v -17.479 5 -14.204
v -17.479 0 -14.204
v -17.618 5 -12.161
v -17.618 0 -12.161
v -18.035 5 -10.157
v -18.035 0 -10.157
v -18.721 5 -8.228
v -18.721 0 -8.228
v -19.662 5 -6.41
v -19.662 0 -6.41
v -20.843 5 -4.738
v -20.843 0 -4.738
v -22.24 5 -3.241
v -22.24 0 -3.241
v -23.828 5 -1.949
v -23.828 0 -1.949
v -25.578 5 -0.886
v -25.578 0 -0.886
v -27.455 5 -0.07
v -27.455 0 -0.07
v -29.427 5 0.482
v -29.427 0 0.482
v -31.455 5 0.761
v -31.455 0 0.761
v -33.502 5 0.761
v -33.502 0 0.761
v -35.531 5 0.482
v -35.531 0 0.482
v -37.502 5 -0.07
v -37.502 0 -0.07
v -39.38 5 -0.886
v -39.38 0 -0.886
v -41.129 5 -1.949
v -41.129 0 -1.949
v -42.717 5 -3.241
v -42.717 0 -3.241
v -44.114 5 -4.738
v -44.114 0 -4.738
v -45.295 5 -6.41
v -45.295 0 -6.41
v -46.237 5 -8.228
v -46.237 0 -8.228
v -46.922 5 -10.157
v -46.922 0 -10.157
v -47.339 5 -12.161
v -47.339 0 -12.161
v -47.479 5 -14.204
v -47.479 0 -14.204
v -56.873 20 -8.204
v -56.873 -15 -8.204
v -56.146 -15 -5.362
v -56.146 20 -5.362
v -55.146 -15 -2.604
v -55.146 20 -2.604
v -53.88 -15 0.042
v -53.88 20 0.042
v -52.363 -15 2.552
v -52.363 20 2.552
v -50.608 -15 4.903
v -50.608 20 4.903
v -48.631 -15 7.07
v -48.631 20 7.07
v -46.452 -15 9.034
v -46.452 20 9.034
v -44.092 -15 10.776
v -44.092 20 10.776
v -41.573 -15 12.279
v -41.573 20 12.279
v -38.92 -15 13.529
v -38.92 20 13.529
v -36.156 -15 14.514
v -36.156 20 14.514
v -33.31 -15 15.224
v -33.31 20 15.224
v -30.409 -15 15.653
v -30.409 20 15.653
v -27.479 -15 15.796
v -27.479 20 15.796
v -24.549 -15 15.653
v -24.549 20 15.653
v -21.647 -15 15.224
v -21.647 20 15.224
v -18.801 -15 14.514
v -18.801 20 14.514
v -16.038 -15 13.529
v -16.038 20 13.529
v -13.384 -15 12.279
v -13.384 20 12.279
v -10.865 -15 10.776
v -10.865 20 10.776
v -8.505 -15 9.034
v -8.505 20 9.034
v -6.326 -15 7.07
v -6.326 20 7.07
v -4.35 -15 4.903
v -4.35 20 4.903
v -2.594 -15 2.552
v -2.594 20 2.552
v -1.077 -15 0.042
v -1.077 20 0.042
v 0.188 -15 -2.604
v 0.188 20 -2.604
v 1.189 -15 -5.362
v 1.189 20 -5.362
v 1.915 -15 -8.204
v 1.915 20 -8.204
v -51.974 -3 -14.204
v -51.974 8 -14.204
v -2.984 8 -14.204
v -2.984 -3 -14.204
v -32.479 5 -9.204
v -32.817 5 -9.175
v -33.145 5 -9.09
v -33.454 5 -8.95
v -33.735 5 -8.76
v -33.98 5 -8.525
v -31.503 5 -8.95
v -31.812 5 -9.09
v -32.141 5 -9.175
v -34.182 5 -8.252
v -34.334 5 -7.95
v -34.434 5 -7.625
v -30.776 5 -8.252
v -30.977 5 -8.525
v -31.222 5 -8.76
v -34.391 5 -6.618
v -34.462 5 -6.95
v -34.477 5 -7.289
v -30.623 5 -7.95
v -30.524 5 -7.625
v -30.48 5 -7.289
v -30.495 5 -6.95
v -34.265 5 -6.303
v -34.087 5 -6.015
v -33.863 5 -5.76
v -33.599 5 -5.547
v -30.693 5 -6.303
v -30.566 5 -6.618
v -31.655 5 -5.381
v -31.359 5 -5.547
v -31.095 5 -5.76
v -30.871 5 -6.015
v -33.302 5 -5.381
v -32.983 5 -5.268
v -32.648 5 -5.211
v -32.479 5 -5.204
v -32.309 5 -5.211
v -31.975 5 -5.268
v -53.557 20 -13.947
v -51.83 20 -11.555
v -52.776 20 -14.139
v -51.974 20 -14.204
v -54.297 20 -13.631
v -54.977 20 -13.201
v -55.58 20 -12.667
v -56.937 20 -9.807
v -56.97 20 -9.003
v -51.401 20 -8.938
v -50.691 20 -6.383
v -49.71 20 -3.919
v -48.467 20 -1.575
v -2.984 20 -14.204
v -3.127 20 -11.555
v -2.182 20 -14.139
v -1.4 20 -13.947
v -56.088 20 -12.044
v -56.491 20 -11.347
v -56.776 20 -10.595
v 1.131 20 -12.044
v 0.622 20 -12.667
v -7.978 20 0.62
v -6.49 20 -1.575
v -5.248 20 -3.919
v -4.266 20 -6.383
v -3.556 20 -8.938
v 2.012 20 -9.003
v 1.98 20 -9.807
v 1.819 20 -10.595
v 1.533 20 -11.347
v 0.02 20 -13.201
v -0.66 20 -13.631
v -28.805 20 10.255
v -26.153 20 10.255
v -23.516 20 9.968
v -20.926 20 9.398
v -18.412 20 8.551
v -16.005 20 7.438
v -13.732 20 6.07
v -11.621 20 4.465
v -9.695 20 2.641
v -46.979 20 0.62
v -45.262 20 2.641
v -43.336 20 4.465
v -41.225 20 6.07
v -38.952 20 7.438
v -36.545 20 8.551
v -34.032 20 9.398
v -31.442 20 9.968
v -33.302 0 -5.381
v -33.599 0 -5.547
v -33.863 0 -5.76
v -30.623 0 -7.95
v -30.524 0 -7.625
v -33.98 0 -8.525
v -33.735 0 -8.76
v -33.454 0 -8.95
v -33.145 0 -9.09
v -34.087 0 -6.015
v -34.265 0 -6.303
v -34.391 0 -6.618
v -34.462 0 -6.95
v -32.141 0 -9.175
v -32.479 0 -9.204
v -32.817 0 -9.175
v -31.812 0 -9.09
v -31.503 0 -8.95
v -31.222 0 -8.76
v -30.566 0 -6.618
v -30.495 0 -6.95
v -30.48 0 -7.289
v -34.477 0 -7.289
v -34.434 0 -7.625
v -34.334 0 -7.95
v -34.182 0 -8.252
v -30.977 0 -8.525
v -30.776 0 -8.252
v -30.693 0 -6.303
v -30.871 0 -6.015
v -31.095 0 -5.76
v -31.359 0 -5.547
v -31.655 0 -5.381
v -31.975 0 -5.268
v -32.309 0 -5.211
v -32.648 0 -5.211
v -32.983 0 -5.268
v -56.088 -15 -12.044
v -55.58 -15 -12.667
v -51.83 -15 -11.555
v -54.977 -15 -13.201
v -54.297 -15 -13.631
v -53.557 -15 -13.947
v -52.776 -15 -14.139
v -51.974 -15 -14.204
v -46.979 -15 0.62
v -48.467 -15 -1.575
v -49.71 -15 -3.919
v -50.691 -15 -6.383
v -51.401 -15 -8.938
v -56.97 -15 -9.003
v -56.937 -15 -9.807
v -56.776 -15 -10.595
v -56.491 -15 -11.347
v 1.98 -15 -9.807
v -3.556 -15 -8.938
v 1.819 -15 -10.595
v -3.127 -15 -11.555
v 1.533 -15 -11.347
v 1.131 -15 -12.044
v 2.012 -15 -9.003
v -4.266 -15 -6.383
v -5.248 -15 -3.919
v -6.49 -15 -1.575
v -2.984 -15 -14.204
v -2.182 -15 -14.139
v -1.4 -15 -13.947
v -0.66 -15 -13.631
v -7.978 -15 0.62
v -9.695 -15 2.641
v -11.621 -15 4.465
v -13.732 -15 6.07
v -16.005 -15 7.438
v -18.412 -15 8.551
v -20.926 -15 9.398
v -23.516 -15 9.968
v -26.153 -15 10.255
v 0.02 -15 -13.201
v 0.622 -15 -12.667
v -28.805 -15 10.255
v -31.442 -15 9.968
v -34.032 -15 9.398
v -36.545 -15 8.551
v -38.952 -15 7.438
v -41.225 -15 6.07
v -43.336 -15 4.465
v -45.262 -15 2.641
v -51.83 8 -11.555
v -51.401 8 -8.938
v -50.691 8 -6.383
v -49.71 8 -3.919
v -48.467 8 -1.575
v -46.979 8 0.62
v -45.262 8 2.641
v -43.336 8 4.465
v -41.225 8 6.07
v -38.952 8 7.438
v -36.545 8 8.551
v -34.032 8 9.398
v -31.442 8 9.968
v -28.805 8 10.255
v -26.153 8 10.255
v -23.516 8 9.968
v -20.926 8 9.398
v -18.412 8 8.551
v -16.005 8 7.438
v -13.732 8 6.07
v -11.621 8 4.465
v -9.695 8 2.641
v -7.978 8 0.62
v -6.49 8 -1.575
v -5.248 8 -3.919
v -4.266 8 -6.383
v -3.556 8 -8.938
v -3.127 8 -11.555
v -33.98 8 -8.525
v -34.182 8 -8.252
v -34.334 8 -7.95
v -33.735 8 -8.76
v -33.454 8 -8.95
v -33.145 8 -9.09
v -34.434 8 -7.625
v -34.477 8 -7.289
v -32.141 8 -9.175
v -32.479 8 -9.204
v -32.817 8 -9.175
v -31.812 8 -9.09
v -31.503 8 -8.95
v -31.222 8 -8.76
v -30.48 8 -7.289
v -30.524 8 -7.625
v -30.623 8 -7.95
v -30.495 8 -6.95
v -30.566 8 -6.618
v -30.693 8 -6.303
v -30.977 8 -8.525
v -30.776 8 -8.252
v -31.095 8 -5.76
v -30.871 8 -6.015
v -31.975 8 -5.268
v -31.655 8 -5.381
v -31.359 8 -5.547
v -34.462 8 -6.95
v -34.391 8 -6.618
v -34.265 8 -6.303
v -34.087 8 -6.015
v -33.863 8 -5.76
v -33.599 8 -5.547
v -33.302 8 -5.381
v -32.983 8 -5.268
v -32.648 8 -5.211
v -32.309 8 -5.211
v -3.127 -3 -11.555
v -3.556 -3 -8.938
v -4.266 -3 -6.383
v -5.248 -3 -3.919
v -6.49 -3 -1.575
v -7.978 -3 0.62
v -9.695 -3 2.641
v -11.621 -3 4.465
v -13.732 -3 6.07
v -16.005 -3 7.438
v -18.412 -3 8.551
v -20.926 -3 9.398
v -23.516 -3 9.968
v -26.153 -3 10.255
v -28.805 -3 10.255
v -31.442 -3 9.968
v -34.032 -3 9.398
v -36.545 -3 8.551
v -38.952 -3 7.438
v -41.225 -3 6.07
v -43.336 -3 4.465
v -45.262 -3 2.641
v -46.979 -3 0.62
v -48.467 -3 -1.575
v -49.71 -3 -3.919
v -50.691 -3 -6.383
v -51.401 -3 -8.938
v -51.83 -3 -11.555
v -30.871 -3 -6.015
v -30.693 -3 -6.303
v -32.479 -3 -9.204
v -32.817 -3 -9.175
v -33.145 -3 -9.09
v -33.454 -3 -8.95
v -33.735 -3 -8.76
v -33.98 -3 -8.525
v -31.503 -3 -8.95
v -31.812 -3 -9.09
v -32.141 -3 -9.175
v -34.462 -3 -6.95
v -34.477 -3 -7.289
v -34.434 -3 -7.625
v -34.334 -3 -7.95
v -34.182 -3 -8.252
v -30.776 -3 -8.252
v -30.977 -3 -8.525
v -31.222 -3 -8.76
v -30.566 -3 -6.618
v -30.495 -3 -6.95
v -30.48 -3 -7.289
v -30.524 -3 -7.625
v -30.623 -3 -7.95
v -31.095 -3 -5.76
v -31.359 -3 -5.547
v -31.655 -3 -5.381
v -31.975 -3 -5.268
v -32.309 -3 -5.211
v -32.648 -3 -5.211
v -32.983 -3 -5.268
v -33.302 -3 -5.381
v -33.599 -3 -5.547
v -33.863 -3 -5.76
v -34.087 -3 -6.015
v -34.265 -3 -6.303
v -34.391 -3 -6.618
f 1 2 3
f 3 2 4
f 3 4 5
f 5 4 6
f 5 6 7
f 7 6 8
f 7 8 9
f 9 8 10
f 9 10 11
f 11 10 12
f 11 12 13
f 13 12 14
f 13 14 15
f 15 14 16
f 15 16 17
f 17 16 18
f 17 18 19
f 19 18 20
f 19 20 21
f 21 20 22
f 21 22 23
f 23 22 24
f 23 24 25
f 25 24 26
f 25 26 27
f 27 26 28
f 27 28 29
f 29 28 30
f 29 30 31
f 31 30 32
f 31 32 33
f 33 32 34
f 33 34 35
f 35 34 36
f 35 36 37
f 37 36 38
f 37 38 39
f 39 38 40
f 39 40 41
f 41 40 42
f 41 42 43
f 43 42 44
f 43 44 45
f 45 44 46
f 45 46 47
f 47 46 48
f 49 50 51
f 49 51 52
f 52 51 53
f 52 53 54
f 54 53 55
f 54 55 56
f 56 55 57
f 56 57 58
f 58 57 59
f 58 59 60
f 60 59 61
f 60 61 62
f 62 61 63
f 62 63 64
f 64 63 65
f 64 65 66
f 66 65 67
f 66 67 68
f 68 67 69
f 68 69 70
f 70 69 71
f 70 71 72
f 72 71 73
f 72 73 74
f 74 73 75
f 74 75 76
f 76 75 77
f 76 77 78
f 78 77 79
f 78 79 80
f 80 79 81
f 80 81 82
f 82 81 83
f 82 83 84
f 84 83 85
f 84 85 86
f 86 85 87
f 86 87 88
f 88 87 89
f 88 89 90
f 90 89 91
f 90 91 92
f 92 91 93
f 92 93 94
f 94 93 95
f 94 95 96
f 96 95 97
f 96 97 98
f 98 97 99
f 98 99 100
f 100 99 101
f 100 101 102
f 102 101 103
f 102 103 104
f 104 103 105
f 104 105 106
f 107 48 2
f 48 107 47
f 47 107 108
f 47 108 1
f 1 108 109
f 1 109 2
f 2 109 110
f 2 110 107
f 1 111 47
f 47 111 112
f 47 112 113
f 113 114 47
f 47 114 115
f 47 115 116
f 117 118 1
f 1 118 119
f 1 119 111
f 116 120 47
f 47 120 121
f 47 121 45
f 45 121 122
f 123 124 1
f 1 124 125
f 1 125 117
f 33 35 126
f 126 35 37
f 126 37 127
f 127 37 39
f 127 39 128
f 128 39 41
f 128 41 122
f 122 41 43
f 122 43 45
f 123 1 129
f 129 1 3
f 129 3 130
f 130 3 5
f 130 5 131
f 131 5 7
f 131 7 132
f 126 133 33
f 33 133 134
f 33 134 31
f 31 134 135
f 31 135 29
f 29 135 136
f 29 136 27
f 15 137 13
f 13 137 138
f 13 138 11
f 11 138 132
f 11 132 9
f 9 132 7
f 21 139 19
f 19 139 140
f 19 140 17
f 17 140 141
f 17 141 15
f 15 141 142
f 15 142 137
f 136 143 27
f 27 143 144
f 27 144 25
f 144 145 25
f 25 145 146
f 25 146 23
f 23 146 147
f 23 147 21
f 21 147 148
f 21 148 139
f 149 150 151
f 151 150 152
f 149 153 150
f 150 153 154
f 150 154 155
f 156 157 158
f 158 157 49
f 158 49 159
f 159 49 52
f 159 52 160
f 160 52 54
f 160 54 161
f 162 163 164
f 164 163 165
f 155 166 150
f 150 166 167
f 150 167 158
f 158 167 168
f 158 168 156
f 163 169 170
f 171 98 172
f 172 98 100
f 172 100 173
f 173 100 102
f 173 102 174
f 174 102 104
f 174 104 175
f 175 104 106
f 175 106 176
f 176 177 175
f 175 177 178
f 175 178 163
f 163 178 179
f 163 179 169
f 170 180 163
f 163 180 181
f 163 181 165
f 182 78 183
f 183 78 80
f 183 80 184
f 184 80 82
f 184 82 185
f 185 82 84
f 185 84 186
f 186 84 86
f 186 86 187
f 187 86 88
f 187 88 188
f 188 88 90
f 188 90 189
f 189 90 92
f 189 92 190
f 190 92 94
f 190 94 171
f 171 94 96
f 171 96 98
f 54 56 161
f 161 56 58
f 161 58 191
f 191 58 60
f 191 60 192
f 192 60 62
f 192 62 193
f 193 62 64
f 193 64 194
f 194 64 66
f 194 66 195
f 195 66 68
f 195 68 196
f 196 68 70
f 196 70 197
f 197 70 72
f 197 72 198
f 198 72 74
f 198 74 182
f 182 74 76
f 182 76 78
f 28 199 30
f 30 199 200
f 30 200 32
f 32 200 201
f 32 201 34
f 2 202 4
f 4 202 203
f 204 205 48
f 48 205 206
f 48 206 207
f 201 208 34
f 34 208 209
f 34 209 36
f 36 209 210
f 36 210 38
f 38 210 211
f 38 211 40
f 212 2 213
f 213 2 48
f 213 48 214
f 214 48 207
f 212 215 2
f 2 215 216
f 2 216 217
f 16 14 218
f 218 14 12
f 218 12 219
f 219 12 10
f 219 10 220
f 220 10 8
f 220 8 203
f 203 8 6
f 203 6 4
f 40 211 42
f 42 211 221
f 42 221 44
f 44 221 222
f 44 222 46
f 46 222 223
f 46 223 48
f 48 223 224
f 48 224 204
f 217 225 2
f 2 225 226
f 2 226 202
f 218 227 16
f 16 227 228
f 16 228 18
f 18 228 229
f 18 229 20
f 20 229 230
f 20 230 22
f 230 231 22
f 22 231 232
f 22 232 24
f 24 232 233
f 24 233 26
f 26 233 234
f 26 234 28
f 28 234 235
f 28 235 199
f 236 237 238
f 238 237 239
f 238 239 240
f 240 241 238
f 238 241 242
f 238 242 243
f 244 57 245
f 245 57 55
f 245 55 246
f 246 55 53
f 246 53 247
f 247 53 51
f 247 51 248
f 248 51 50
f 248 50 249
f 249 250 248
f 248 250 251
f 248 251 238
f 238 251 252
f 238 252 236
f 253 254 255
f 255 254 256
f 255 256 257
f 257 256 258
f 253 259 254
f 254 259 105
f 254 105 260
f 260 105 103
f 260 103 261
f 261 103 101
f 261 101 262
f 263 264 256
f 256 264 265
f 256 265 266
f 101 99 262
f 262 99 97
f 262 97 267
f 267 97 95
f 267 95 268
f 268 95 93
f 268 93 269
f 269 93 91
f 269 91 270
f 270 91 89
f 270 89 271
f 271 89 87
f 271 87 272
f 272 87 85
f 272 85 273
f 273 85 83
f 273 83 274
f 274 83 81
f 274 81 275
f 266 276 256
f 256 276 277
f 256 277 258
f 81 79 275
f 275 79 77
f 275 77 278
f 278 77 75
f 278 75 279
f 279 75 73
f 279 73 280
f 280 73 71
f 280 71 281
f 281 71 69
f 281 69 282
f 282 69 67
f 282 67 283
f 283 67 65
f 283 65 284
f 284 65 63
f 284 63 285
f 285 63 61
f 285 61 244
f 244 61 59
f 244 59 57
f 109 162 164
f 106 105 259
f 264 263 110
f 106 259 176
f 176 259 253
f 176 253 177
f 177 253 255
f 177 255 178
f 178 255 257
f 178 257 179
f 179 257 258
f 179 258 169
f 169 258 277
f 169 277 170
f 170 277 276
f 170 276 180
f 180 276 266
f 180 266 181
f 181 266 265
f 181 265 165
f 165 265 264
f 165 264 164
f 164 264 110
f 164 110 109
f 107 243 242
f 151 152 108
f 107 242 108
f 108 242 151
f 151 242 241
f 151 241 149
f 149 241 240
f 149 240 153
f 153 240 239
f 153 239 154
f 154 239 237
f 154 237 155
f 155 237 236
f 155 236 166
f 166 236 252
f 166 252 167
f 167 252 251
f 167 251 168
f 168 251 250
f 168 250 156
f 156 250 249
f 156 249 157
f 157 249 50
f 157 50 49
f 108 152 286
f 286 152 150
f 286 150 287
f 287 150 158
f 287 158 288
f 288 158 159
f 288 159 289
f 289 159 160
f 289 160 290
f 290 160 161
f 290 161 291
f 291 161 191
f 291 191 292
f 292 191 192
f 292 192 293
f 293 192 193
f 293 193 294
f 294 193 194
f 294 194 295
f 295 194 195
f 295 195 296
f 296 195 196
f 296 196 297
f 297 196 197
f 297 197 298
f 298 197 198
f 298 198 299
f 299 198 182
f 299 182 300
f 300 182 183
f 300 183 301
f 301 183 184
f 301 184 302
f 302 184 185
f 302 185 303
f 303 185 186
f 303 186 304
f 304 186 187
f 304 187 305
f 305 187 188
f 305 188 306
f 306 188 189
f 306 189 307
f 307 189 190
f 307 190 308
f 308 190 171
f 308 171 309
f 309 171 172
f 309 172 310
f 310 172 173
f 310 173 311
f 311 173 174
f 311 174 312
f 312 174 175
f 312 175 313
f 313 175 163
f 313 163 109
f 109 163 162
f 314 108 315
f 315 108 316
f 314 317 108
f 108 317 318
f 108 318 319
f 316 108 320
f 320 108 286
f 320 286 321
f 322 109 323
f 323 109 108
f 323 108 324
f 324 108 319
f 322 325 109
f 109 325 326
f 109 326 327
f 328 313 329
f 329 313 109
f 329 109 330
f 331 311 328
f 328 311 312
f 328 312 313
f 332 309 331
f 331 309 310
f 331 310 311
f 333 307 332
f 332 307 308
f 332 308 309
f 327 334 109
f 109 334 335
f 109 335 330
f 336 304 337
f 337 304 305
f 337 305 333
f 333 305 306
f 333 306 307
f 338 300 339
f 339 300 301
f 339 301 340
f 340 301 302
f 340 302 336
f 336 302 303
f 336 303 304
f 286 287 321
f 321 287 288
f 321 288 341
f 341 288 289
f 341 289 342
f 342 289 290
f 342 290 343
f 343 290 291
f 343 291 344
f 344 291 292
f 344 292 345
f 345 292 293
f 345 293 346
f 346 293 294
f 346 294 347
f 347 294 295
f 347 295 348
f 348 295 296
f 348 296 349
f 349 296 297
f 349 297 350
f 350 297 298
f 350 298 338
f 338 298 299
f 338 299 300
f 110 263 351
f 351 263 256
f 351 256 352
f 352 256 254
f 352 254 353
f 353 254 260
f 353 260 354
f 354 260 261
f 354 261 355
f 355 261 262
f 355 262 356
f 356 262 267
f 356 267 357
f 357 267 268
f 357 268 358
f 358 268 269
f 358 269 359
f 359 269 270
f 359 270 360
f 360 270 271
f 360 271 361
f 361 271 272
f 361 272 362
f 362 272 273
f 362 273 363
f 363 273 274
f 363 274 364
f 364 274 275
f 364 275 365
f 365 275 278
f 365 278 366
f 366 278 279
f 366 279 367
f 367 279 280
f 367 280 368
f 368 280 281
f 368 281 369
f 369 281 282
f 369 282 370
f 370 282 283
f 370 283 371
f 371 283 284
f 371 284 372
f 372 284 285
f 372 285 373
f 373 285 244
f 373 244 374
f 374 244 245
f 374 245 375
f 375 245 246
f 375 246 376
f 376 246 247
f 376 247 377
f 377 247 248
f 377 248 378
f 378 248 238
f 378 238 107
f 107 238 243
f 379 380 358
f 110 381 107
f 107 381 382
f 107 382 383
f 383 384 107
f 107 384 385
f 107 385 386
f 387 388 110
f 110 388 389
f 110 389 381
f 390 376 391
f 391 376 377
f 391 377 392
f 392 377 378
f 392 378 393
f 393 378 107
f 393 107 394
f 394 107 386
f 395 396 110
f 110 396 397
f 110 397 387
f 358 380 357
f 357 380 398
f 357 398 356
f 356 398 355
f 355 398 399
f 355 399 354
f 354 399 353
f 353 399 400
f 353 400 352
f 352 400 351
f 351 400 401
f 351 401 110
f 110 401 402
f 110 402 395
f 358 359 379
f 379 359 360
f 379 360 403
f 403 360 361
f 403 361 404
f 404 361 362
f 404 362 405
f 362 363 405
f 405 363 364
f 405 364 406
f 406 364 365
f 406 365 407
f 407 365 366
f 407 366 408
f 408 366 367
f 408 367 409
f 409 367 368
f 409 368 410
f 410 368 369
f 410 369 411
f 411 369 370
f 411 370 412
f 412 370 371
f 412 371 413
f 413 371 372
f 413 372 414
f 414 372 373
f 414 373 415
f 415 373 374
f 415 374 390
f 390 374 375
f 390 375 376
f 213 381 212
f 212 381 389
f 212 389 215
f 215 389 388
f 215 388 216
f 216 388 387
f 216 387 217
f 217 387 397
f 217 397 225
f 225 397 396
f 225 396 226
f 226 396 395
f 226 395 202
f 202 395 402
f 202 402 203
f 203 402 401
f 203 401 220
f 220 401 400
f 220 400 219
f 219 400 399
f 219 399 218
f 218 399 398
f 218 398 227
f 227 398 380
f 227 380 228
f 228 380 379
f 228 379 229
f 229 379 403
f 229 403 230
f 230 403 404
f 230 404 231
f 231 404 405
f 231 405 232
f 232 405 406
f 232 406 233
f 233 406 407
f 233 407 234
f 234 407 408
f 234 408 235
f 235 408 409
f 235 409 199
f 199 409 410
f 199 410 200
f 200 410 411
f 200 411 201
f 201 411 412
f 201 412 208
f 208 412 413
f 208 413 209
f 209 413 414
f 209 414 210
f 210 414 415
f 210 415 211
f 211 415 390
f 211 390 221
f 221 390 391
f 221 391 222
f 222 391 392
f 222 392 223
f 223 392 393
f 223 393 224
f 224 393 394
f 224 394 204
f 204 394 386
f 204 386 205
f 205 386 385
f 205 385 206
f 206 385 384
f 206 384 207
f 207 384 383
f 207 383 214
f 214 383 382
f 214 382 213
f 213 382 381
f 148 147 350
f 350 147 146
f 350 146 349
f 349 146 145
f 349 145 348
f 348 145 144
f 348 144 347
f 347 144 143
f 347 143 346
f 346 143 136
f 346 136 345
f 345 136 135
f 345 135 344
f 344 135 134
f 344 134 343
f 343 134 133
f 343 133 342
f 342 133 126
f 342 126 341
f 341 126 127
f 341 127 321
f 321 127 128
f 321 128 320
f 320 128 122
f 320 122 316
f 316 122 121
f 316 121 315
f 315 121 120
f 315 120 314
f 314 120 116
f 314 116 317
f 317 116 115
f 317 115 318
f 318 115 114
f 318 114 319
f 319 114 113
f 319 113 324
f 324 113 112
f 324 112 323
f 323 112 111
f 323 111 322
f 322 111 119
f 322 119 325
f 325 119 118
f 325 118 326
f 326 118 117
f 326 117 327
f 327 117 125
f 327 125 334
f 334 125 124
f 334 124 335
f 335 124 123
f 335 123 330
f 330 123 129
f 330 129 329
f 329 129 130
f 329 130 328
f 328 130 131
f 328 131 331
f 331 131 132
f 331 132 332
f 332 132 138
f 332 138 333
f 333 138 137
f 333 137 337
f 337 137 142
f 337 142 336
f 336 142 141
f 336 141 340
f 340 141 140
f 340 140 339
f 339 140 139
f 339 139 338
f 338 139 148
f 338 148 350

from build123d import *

# Parameters (mm, degrees)
BOSS_EXTRUDE1_DEPTH = 5
BOSS_EXTRUDE2_DEPTH = 15
BOSS_EXTRUDE3_START = 15
BOSS_EXTRUDE3_DEPTH = 15
FILLET2_R           = 5
FILLET3_R           = 5
CUT_EXTRUDE1_DEPTH  = 12
CUT_EXTRUDE2_START  = -12
CUT_EXTRUDE2_DEPTH  = 12
SKETCH11_R          = 2
CUT_EXTRUDE3_DEPTH  = 11


with BuildPart() as part:
    # Sketch4 → Boss-Extrude1 (new body)
    with BuildSketch(Plane(origin=(0, 0, 0), x_dir=(1, 0, 0), z_dir=(0, 1, 0))):
        with BuildLine():
            Line((-57.478675123, 14.203833226), (-47.478675123, 14.203833226))
            ThreePointArc((-47.478675123, 14.203833226), (-32.478675123, -0.796166774), (-17.478675123, 14.203833226))
            Line((-17.478675123, 14.203833226), (2.521324877, 14.203833226))
            ThreePointArc((2.521324877, 14.203833226), (-27.478675123, -15.796166774), (-57.478675123, 14.203833226))
        make_face()
    extrude(amount=BOSS_EXTRUDE1_DEPTH)

    # Sketch5 → Boss-Extrude2 (add)
    with BuildSketch(Plane(origin=(0, 5, 0), x_dir=(1, 0, 0), z_dir=(0, 1, 0))):
        with BuildLine():
            Line((-57.478675123, 14.203833226), (2.521324877, 14.203833226))
            ThreePointArc((2.521324877, 14.203833226), (-27.478675123, -15.796166774), (-57.478675123, 14.203833226))
        make_face()
    extrude(amount=BOSS_EXTRUDE2_DEPTH)

    # Sketch6 → Boss-Extrude3 (add)
    with BuildSketch(Plane.XZ.offset(BOSS_EXTRUDE3_START)):
        with BuildLine():
            Line((2.521324877, -14.203833226), (-57.478675123, -14.203833226))
            ThreePointArc((-57.478675123, -14.203833226), (-27.478675123, 15.796166774), (2.521324877, -14.203833226))
        make_face()
    extrude(amount=-BOSS_EXTRUDE3_DEPTH)

    # Fillet2
    fillet2_edges = [part.edges().sort_by_distance(p)[0] for p in [
        (2.521324877, 2.5, -14.203833226),
    ]]
    fillet(fillet2_edges, radius=FILLET2_R)

    # Fillet3
    fillet3_edges = [part.edges().sort_by_distance(p)[0] for p in [
        (-57.478675123, 2.5, -14.203833226),
    ]]
    fillet(fillet3_edges, radius=FILLET3_R)

    # Sketch8 → Cut-Extrude1 (cut)
    with BuildSketch(Plane(origin=(0, 20, 0), x_dir=(1, 0, 0), z_dir=(0, 1, 0))):
        with BuildLine():
            Line((-51.973572551, 14.203833226), (-2.983777696, 14.203833226))
            ThreePointArc((-2.983777696, 14.203833226), (-27.478675123, -10.291064201), (-51.973572551, 14.203833226))
        make_face()
    extrude(amount=-CUT_EXTRUDE1_DEPTH, mode=Mode.SUBTRACT)

    # Sketch9 → Cut-Extrude2 (cut)
    with BuildSketch(Plane.XZ.offset(15).offset(CUT_EXTRUDE2_START)):
        with BuildLine():
            Line((-51.973572551, -14.203833226), (-2.983777696, -14.203833226))
            ThreePointArc((-2.983777696, -14.203833226), (-27.478675123, 10.291064201), (-51.973572551, -14.203833226))
        make_face()
    extrude(amount=CUT_EXTRUDE2_DEPTH, mode=Mode.SUBTRACT)

    # Sketch11 → Cut-Extrude3 (cut)
    with BuildSketch(Plane.XZ.offset(3)):
        with Locations(Location((-32.478675123, -7.203833226, 0), (0, 0, 270))):
            Circle(SKETCH11_R)
    extrude(amount=-CUT_EXTRUDE3_DEPTH, mode=Mode.SUBTRACT)


solid = part.part
